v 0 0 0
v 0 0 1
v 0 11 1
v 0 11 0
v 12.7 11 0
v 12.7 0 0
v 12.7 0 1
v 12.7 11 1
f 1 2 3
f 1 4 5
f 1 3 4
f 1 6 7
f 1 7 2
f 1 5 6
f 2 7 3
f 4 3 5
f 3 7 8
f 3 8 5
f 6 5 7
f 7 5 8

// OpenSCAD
/* Warning, this is a very basic generator with a lot of approximation 
input data : [MODULE, 4YX, 12.7x11mm, 25, , A, C04-00487A]
generated by com.zoubworld.electronics.cad.model3d.Basic
Date : Sun Feb 15 10:50:48 CET 2026
*/

//body
color("black")
translate([0,0,0])
cube([12.7,11.0,1.0], center=false);
